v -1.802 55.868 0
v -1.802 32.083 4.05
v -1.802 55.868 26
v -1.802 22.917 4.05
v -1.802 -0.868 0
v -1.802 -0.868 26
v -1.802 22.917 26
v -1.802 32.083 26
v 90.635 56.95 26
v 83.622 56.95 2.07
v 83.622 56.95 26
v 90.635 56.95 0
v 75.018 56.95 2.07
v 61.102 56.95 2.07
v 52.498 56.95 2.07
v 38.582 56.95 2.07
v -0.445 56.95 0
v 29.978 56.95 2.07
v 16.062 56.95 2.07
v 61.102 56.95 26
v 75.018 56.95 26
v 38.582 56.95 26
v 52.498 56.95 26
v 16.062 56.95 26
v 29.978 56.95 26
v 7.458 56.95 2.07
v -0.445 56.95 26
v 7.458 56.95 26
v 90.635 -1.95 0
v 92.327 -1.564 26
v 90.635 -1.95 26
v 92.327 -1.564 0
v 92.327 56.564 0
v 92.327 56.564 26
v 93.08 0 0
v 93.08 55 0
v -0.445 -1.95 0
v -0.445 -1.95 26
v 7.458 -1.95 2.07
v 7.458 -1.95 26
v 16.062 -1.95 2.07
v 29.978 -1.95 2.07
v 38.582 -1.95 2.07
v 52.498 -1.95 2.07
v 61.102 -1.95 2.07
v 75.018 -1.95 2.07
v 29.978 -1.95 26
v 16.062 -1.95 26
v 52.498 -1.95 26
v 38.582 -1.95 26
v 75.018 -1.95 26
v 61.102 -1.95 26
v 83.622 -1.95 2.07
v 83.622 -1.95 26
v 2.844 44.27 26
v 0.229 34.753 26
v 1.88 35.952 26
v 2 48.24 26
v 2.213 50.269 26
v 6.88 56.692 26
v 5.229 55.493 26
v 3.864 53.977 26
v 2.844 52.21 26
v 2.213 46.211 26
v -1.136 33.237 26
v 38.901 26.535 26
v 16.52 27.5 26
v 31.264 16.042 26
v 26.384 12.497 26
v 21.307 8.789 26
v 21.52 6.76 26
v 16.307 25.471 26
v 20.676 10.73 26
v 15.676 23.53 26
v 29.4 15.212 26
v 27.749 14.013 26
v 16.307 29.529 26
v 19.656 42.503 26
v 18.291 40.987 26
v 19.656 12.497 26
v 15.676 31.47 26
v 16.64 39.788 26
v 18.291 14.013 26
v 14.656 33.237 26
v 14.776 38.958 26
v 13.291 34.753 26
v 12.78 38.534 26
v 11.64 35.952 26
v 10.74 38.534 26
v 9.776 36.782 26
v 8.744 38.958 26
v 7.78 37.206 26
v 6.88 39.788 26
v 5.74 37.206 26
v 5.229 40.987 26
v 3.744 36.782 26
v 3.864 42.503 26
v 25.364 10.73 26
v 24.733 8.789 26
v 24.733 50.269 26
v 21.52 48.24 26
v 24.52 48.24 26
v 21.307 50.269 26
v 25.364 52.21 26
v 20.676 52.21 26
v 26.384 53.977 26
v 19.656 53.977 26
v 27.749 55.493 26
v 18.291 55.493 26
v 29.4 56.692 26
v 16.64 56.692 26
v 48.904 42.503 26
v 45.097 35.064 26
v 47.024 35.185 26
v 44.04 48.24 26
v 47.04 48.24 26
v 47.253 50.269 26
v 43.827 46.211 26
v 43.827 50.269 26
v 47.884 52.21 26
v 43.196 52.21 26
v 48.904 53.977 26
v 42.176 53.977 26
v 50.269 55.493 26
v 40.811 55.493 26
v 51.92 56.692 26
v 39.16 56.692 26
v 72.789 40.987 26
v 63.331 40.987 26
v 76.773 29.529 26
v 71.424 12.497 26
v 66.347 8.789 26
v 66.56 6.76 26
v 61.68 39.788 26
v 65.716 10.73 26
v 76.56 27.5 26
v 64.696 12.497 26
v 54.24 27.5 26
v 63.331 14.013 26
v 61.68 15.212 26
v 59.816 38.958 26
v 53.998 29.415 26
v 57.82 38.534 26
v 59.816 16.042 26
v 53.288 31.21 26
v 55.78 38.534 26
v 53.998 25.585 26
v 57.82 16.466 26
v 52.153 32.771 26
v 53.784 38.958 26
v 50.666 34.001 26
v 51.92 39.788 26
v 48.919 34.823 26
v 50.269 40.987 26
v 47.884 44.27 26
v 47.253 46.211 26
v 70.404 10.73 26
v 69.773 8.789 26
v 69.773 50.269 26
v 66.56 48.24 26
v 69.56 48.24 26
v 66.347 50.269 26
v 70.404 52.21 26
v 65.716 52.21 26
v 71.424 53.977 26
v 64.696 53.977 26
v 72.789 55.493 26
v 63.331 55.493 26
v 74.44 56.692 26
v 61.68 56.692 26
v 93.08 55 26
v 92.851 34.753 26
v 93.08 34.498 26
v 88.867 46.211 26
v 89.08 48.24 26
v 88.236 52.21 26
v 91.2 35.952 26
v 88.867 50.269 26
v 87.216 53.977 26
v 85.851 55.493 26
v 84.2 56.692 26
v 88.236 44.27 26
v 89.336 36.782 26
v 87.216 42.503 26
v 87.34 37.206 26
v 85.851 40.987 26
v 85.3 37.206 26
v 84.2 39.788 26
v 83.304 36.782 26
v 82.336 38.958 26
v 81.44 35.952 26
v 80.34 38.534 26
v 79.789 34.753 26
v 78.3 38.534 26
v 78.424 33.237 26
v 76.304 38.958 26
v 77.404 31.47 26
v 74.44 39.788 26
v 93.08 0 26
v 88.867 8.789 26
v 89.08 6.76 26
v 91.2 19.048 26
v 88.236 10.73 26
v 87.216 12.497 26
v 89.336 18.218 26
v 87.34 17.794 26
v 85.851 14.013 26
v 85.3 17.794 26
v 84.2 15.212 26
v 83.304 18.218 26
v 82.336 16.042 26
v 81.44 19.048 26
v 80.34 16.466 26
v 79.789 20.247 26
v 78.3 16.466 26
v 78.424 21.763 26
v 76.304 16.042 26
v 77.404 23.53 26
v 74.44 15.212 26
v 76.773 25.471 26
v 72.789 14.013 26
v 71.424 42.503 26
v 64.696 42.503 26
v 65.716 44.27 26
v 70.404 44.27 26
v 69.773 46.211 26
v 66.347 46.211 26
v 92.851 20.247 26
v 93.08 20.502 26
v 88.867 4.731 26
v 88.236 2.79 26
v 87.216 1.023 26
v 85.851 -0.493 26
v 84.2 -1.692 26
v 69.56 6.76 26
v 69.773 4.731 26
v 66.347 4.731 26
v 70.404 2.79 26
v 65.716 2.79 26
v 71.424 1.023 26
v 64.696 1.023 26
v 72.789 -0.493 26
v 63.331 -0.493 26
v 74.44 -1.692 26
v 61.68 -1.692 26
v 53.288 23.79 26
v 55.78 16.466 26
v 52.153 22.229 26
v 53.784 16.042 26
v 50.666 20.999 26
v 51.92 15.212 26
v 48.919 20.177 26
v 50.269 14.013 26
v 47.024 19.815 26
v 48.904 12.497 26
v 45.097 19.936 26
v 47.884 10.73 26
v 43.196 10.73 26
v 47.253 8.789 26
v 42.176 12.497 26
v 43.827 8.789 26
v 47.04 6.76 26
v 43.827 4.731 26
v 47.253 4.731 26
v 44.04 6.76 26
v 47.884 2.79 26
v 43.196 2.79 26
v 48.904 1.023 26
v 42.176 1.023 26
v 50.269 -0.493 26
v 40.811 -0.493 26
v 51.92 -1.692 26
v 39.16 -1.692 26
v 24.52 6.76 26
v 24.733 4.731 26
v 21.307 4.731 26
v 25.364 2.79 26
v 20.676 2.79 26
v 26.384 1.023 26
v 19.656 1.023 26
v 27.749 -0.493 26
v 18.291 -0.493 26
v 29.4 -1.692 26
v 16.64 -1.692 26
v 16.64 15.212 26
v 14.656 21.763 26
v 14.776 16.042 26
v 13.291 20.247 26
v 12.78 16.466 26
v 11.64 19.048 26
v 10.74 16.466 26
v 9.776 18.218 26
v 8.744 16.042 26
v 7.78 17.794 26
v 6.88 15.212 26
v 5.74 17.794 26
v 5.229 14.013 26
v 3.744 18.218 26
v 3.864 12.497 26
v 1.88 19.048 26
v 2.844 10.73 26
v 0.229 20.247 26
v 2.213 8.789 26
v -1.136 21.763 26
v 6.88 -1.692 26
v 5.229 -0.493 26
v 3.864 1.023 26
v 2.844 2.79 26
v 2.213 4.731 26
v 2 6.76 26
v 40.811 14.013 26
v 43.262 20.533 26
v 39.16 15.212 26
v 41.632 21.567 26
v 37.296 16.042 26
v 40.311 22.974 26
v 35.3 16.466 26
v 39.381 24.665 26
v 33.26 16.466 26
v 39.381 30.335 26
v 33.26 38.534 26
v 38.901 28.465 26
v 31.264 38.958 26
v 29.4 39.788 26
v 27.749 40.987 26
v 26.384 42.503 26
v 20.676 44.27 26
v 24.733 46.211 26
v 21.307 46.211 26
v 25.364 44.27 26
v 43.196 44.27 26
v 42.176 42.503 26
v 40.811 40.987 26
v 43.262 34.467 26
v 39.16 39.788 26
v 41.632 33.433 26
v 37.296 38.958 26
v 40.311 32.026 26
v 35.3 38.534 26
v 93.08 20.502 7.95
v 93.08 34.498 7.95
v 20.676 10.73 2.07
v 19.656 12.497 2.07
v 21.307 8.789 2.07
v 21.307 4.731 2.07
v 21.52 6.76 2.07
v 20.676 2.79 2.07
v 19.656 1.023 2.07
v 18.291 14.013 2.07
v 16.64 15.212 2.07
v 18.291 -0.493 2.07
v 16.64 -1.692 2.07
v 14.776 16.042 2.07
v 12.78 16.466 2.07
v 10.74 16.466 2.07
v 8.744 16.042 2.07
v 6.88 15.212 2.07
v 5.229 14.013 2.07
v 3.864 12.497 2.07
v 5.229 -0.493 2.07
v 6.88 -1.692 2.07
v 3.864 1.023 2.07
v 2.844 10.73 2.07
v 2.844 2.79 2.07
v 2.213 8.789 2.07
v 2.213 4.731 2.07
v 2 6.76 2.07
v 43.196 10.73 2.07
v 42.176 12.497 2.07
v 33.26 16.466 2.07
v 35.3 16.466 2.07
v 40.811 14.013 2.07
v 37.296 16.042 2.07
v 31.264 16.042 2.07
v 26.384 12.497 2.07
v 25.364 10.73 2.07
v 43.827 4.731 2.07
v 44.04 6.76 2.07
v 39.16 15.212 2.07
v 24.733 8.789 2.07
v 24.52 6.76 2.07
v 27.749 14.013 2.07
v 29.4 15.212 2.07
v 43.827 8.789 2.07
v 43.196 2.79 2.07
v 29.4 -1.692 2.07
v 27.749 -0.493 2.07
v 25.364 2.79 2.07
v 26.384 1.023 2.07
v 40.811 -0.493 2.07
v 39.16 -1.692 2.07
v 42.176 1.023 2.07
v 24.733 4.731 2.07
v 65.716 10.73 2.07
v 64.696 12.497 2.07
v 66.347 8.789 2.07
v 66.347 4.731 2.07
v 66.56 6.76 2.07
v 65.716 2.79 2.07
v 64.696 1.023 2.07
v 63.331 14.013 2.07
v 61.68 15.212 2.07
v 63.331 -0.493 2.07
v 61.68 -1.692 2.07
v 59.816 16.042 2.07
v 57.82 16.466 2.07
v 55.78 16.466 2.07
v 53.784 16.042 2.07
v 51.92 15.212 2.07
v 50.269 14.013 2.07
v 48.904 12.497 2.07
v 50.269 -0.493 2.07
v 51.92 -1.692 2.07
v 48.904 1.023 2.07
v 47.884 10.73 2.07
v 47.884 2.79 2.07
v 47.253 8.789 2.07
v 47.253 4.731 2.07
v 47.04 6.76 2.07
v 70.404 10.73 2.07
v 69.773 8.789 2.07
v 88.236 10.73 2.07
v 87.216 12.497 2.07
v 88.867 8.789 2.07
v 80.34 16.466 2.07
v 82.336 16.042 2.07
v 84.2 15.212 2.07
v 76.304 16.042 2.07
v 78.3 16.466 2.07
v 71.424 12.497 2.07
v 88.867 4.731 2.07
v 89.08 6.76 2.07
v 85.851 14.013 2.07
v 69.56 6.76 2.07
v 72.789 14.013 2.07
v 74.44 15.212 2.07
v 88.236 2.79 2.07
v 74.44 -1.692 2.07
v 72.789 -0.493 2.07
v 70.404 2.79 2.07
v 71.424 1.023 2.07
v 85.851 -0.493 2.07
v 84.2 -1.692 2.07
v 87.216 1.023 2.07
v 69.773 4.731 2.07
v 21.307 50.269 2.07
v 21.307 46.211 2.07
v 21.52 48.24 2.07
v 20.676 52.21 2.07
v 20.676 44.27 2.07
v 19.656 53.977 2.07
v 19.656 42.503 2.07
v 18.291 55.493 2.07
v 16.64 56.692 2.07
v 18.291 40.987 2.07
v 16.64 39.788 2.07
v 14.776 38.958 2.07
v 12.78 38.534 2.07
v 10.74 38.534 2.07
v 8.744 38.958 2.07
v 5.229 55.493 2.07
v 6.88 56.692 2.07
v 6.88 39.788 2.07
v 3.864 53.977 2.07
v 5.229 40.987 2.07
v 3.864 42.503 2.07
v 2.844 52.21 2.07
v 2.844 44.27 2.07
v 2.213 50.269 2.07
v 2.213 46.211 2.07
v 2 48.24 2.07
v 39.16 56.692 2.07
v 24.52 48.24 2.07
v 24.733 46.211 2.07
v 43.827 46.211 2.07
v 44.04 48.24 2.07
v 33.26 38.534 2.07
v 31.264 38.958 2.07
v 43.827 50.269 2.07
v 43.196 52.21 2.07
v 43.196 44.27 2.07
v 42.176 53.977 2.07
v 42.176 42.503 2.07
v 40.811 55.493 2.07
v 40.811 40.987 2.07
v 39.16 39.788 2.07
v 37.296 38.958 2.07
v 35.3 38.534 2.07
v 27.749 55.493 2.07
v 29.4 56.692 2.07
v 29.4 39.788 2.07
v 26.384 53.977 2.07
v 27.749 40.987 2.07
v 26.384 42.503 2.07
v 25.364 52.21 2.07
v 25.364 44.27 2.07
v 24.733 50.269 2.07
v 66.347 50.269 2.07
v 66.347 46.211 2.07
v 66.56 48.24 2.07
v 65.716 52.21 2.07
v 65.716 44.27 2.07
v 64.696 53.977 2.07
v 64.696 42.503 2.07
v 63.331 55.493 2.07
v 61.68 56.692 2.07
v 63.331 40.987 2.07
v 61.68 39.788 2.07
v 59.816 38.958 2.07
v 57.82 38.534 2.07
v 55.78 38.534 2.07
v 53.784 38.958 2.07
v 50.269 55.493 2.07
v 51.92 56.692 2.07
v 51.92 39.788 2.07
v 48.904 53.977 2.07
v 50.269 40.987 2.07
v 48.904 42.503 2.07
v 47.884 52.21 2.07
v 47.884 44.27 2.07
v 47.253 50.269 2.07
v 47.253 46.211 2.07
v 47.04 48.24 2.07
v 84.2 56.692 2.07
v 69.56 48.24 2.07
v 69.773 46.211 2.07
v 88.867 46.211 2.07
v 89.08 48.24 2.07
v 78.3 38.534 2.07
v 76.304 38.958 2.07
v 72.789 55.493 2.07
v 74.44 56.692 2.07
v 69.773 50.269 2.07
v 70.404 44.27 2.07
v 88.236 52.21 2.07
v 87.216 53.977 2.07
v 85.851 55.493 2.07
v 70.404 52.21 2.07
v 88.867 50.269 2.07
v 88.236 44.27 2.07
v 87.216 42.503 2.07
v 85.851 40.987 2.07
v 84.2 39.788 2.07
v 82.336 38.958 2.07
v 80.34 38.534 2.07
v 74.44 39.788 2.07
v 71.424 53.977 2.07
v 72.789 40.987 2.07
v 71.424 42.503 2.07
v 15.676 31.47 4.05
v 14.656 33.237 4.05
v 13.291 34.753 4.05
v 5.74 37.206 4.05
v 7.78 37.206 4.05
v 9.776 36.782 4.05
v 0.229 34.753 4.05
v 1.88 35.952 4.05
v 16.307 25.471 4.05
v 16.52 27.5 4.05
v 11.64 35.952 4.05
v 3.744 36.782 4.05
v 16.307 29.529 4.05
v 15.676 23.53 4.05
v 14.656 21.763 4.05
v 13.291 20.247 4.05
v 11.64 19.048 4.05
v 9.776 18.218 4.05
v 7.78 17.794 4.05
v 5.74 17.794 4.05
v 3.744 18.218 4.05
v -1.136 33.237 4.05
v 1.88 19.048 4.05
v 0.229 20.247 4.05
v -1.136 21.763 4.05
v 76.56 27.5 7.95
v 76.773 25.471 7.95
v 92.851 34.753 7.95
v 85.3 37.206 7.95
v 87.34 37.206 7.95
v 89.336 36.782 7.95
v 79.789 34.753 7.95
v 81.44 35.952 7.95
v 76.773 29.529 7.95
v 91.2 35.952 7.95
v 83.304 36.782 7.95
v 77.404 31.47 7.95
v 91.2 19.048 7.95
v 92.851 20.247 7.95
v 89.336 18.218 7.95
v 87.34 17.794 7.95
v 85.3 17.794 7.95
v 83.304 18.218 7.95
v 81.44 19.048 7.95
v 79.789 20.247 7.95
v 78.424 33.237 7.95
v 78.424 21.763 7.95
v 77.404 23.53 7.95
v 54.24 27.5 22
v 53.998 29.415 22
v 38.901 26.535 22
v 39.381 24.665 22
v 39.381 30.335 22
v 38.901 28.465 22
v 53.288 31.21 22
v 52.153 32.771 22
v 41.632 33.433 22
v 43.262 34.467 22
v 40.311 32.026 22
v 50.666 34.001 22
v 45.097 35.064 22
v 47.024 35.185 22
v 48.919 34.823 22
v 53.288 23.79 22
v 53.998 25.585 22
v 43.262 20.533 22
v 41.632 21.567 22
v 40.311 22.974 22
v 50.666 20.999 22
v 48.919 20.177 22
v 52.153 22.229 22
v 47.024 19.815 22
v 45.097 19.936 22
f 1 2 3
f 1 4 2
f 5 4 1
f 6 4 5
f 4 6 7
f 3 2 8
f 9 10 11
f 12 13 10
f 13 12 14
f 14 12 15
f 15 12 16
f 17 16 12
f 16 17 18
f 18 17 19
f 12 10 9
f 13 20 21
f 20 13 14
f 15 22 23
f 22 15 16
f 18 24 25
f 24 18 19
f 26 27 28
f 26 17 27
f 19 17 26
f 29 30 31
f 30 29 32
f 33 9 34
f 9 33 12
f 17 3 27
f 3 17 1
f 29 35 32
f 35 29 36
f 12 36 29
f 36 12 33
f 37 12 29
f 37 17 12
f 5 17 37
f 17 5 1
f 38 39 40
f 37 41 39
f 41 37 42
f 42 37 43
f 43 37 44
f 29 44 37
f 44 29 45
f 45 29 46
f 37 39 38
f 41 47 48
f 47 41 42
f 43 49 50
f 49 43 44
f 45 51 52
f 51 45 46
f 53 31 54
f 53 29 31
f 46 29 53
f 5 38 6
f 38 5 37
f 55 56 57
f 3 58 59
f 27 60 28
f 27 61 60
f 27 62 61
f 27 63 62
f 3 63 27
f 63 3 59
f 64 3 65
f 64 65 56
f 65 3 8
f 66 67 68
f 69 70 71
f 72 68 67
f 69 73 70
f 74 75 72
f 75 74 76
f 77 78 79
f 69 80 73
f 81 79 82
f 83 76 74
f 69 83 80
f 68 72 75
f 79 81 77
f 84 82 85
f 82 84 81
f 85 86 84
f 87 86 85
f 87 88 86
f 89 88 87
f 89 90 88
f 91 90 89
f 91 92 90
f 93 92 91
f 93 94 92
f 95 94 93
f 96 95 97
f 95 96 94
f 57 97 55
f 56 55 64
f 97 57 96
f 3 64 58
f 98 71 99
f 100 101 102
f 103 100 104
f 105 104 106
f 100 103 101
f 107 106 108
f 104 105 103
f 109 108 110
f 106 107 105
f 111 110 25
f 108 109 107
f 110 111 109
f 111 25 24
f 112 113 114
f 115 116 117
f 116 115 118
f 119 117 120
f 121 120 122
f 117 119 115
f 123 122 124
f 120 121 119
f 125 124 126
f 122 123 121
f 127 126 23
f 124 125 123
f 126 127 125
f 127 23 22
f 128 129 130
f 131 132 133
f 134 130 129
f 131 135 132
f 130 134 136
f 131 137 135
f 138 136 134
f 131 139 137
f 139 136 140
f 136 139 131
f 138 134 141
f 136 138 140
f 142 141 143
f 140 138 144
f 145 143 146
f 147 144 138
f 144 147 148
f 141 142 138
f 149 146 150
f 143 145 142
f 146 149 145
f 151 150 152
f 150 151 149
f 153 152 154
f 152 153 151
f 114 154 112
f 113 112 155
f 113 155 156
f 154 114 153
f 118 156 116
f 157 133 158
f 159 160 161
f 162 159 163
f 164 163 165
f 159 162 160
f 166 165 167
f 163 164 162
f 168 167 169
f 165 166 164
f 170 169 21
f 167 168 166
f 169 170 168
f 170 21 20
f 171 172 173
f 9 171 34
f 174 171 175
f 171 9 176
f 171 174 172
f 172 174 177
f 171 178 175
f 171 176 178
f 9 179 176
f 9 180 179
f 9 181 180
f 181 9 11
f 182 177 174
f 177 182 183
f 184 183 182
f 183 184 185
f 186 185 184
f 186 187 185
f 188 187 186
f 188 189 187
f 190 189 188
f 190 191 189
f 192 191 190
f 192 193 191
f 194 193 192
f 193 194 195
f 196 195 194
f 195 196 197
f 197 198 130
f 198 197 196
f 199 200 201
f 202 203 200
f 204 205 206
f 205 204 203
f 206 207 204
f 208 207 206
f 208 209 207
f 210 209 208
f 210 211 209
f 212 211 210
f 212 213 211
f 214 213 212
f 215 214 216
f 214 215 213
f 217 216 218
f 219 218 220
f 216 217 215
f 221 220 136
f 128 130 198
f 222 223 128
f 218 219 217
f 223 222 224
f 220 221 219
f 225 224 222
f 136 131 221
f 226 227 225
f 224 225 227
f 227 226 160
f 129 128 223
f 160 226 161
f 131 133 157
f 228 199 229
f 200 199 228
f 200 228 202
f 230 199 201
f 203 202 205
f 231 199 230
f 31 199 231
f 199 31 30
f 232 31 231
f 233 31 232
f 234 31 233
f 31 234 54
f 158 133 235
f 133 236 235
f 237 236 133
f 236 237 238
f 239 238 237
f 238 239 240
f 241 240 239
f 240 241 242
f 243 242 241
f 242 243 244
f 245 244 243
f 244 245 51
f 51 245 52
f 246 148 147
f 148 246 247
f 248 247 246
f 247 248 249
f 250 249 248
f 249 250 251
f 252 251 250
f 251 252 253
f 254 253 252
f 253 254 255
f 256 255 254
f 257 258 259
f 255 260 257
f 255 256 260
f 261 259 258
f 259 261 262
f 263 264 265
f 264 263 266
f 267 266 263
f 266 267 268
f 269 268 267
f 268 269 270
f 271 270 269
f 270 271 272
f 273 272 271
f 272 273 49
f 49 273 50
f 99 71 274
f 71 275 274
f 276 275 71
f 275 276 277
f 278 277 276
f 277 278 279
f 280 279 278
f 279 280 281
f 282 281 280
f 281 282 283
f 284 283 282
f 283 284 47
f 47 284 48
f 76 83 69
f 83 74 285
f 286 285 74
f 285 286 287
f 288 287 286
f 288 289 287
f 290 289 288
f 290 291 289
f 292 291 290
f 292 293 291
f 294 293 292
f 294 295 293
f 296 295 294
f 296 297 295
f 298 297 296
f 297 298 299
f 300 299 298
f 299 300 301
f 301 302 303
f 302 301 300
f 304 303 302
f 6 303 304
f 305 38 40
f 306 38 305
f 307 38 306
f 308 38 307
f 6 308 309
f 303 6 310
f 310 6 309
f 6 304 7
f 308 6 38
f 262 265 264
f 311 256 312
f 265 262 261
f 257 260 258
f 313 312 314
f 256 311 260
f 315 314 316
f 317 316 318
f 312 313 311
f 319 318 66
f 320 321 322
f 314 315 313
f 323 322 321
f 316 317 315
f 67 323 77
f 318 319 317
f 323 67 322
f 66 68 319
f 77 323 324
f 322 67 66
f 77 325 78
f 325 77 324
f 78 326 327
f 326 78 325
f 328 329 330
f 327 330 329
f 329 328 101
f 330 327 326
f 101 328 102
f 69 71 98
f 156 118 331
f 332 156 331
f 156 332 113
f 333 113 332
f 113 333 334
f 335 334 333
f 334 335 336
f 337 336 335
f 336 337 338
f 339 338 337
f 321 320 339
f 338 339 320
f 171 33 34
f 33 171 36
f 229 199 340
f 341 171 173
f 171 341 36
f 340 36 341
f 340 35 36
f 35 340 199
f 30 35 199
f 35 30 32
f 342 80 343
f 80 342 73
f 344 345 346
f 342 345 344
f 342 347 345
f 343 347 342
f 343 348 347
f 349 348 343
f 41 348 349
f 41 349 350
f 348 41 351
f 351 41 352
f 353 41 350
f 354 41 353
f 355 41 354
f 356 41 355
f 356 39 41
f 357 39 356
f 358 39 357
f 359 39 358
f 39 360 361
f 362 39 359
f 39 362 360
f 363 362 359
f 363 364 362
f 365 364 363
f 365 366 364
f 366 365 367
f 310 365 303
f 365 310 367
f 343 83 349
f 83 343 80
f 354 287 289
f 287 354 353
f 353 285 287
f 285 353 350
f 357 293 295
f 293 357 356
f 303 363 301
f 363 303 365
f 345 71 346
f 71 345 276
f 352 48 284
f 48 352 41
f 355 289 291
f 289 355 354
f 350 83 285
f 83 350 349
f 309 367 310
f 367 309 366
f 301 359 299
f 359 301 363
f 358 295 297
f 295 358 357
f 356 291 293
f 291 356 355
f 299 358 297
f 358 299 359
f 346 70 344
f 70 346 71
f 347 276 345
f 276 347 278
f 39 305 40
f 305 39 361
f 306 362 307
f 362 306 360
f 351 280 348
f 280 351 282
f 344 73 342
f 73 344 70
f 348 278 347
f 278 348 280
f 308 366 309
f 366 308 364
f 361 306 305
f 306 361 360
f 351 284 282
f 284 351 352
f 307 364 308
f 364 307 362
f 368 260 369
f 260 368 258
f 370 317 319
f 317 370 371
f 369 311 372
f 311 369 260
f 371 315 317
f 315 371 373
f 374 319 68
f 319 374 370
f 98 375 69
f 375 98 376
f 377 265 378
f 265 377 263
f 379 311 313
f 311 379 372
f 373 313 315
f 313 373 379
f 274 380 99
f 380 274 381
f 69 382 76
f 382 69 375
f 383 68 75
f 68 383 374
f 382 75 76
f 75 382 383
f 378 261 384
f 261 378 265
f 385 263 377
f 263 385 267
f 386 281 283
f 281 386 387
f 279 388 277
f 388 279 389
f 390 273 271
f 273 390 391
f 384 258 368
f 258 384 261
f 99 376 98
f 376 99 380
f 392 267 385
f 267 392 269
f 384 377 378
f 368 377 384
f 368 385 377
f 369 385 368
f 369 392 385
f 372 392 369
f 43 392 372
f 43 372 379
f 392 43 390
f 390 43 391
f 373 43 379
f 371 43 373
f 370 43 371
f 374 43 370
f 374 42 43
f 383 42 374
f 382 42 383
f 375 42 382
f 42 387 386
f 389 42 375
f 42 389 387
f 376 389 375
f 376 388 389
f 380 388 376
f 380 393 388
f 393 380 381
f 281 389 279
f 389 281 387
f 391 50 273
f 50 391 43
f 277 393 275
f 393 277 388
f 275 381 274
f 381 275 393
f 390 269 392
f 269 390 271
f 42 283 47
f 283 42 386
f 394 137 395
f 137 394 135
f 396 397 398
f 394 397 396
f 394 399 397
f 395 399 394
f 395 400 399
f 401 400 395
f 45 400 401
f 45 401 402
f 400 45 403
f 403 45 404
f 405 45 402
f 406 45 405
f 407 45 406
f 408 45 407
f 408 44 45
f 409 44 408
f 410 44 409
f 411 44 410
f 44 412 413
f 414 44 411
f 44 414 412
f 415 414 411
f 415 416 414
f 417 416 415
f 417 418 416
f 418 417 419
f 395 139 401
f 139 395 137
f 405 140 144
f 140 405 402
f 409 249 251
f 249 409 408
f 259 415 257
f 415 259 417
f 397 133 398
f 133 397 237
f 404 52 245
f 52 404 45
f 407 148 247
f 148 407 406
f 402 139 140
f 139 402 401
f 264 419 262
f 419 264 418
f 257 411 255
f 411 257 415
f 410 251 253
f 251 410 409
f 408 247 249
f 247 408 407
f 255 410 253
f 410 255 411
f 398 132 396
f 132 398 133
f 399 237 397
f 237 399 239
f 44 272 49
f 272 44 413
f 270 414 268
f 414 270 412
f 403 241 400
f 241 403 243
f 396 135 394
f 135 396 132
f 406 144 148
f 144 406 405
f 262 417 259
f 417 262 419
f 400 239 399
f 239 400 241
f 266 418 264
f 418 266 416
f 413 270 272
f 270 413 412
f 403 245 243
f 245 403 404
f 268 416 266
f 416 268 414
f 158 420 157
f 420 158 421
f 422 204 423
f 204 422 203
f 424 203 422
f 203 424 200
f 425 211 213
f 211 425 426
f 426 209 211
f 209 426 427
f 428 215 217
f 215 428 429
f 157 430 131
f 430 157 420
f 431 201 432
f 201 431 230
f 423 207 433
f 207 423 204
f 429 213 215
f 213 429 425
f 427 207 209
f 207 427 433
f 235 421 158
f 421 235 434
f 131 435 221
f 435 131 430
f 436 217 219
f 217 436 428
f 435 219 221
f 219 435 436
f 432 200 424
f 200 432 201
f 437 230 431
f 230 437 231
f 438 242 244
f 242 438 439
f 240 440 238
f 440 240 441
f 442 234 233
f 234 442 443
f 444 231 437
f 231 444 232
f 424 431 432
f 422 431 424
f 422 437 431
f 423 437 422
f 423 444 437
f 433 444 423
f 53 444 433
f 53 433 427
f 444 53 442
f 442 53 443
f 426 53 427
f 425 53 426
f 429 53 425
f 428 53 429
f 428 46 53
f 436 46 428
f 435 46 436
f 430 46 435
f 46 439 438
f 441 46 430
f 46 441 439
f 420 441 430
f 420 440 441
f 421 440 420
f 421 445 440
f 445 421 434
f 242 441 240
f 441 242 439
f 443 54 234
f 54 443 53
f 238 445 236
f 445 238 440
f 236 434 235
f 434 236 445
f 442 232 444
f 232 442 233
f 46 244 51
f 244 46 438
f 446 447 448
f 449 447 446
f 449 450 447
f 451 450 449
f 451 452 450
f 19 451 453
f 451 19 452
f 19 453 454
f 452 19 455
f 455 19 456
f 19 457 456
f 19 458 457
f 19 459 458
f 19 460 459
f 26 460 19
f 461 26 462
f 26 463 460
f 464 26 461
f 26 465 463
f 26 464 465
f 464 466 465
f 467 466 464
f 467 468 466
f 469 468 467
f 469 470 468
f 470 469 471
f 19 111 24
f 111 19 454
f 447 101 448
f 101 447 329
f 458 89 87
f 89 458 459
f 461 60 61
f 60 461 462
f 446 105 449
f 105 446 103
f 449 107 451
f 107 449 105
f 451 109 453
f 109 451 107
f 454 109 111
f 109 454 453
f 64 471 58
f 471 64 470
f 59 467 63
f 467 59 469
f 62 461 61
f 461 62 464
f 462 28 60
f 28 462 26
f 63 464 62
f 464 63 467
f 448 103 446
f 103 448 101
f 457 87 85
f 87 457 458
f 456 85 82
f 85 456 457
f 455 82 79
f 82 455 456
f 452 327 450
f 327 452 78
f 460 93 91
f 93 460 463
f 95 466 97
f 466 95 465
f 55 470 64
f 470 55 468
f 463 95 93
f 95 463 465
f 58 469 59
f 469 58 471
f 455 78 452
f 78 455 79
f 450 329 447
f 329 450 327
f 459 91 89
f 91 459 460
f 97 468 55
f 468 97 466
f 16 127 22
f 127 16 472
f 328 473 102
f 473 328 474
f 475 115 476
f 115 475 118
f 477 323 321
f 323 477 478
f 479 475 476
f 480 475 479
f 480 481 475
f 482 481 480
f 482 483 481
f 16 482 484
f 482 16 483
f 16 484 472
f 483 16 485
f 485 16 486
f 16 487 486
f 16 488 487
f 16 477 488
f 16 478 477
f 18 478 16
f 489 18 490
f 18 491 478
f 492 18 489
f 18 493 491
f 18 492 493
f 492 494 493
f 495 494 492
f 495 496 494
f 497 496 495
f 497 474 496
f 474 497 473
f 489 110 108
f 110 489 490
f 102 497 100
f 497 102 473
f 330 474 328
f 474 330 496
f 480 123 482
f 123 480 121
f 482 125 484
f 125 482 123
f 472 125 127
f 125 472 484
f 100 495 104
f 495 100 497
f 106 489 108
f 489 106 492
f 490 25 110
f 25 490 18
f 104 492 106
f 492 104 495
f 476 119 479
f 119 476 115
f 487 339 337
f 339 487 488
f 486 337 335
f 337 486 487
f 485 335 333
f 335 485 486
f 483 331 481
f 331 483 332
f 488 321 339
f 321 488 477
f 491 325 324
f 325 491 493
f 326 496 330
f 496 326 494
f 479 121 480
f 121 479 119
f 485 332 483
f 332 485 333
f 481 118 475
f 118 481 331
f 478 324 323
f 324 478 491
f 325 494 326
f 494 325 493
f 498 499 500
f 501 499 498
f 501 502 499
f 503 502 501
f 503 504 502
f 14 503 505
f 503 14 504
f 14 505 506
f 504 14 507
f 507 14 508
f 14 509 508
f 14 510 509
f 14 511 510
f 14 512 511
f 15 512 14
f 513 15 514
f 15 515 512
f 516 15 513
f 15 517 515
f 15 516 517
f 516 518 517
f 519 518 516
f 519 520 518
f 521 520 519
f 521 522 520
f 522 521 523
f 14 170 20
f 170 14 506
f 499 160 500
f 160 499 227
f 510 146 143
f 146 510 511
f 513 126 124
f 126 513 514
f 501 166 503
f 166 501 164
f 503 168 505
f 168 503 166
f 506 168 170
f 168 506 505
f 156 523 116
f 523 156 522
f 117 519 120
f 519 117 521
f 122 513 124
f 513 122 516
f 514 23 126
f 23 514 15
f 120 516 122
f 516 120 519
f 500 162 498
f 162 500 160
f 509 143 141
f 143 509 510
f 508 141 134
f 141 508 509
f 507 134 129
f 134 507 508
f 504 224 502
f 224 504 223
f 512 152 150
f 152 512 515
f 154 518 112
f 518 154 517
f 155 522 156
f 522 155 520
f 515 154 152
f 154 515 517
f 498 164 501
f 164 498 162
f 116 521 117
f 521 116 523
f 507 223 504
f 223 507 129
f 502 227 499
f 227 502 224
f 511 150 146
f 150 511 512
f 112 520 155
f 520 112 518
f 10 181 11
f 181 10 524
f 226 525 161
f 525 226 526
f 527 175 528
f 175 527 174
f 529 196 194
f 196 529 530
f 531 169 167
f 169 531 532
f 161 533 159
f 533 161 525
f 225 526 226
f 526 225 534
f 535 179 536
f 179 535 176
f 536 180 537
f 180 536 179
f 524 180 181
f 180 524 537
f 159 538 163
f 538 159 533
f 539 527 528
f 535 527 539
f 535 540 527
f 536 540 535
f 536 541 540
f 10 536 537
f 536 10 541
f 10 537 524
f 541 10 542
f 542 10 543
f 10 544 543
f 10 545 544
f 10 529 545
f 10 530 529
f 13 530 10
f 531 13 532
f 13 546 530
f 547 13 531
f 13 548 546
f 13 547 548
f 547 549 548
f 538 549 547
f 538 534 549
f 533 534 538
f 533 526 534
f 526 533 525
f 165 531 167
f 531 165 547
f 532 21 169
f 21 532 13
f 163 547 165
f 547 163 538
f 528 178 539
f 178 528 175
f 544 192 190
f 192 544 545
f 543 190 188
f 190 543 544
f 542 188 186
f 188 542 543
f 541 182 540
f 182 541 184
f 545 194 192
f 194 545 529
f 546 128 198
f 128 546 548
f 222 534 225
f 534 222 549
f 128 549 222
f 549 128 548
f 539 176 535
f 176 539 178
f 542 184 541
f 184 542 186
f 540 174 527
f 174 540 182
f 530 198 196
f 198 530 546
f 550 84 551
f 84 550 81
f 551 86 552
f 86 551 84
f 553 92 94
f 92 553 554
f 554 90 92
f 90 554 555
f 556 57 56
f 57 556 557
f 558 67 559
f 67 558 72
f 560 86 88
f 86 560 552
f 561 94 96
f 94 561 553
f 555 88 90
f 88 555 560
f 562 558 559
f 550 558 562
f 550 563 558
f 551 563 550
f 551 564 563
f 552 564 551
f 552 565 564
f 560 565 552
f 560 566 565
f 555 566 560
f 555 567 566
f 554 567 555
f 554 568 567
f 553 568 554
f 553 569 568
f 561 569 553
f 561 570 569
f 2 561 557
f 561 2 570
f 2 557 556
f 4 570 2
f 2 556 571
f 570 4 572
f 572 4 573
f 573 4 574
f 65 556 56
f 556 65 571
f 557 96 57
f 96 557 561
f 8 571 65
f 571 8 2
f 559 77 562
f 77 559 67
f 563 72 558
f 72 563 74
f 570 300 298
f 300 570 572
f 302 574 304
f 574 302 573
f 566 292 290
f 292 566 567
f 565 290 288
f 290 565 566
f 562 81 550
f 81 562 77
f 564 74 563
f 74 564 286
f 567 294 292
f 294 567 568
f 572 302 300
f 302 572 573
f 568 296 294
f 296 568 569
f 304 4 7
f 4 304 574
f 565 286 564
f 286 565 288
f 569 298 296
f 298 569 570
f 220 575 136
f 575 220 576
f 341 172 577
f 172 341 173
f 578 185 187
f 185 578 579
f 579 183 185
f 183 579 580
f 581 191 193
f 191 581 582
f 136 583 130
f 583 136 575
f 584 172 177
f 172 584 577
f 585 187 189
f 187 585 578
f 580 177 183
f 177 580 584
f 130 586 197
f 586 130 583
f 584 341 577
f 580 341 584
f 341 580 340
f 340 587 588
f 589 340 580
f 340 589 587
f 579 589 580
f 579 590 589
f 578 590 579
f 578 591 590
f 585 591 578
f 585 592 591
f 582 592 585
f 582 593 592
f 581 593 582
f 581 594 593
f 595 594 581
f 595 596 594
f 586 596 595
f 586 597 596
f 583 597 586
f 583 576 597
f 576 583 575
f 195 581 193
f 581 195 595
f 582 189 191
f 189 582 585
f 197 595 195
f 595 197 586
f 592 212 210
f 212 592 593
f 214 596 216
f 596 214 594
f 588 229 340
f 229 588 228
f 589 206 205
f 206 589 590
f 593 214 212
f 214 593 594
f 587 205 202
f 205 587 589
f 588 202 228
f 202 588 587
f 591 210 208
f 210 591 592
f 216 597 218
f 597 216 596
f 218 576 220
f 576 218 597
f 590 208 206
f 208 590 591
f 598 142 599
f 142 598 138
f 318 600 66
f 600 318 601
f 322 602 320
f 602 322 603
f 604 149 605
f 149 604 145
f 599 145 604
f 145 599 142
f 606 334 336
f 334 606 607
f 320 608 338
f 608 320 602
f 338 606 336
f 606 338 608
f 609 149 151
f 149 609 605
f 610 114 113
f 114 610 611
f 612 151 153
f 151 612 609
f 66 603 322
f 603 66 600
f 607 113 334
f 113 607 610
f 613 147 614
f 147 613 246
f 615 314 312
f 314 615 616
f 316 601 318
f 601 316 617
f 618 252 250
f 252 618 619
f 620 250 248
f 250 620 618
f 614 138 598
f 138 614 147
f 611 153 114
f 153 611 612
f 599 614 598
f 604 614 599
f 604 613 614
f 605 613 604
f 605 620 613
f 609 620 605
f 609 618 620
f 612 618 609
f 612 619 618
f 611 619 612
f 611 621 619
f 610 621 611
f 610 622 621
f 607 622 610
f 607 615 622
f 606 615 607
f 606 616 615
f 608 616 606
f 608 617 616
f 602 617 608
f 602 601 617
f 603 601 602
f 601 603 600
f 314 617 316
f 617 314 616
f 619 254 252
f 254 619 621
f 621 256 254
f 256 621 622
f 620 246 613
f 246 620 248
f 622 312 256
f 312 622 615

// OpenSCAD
height = 26;

magnetBaseInnerDiameter = 15.4;
magnetHeight = 4.0;

//
//		1s
//			19.2 diameter
//			28 coins
//			height 13.97
//


smallCircleDiameter = 19.02 + .5;
smallCircleOffset = 3;
smallCircleHeight = 23.43 + .5;
smallCircleHeight2 = 21.45 + .5;
smallCircleHeight3 = 17.55 + .5;

spaceBetweenCircles = 3;
wallThickness = 3;

width = 55;
length = wallThickness * 5 + smallCircleDiameter * 4;

difference(){
    minkowski()
        {
          cube([length - 2, width, height - 1]);
          cylinder(r=2,h=1);
        }
    
   translate([
        wallThickness * 1 + (smallCircleDiameter * 1/2) - 1,
        smallCircleDiameter/2 - smallCircleOffset,
        height - smallCircleHeight])
        cylinder(smallCircleHeight, d=smallCircleDiameter);
    translate([
        wallThickness * 2 + smallCircleDiameter * 3/2 - 1,
        smallCircleDiameter/2 - smallCircleOffset,
        height - smallCircleHeight])
        cylinder(smallCircleHeight, d=smallCircleDiameter);
    translate([
        wallThickness * 3 + smallCircleDiameter * 5/2 - 1,
        smallCircleDiameter/2 - smallCircleOffset,
        height - smallCircleHeight])
        cylinder(smallCircleHeight, d=smallCircleDiameter);
    translate([
        wallThickness * 4 + smallCircleDiameter * 7/2 - 1,
        smallCircleDiameter/2 - smallCircleOffset,
        height - smallCircleHeight])
        cylinder(smallCircleHeight, d=smallCircleDiameter);

   translate([
        wallThickness * 1 + (smallCircleDiameter * 1/2) - 1,
        width - (smallCircleDiameter/2 - smallCircleOffset),
        height - smallCircleHeight])
        cylinder(smallCircleHeight, d=smallCircleDiameter);
    translate([
        wallThickness * 2 + smallCircleDiameter * 3/2 - 1,
        width - (smallCircleDiameter/2 - smallCircleOffset),
        height - smallCircleHeight])
        cylinder(smallCircleHeight, d=smallCircleDiameter);
    translate([
        wallThickness * 3 + smallCircleDiameter * 5/2 - 1,
        width - (smallCircleDiameter/2 - smallCircleOffset),
        height - smallCircleHeight])
        cylinder(smallCircleHeight, d=smallCircleDiameter);
    translate([
        wallThickness * 4 + smallCircleDiameter * 7/2 - 1,
        width - (smallCircleDiameter/2 - smallCircleOffset),
        height - smallCircleHeight])
        cylinder(smallCircleHeight, d=smallCircleDiameter);
    

    translate([smallCircleDiameter/2 - smallCircleOffset, width/2, height - smallCircleHeight2])
        cylinder(smallCircleHeight2, d=smallCircleDiameter);

    translate([length - (smallCircleDiameter/2 - smallCircleOffset), width/2, height - smallCircleHeight3])
        cylinder(smallCircleHeight3, d=smallCircleDiameter);
        
    translate([length/2, width/2, height - magnetHeight])
        cylinder(magnetHeight, d=magnetBaseInnerDiameter);
        

}
